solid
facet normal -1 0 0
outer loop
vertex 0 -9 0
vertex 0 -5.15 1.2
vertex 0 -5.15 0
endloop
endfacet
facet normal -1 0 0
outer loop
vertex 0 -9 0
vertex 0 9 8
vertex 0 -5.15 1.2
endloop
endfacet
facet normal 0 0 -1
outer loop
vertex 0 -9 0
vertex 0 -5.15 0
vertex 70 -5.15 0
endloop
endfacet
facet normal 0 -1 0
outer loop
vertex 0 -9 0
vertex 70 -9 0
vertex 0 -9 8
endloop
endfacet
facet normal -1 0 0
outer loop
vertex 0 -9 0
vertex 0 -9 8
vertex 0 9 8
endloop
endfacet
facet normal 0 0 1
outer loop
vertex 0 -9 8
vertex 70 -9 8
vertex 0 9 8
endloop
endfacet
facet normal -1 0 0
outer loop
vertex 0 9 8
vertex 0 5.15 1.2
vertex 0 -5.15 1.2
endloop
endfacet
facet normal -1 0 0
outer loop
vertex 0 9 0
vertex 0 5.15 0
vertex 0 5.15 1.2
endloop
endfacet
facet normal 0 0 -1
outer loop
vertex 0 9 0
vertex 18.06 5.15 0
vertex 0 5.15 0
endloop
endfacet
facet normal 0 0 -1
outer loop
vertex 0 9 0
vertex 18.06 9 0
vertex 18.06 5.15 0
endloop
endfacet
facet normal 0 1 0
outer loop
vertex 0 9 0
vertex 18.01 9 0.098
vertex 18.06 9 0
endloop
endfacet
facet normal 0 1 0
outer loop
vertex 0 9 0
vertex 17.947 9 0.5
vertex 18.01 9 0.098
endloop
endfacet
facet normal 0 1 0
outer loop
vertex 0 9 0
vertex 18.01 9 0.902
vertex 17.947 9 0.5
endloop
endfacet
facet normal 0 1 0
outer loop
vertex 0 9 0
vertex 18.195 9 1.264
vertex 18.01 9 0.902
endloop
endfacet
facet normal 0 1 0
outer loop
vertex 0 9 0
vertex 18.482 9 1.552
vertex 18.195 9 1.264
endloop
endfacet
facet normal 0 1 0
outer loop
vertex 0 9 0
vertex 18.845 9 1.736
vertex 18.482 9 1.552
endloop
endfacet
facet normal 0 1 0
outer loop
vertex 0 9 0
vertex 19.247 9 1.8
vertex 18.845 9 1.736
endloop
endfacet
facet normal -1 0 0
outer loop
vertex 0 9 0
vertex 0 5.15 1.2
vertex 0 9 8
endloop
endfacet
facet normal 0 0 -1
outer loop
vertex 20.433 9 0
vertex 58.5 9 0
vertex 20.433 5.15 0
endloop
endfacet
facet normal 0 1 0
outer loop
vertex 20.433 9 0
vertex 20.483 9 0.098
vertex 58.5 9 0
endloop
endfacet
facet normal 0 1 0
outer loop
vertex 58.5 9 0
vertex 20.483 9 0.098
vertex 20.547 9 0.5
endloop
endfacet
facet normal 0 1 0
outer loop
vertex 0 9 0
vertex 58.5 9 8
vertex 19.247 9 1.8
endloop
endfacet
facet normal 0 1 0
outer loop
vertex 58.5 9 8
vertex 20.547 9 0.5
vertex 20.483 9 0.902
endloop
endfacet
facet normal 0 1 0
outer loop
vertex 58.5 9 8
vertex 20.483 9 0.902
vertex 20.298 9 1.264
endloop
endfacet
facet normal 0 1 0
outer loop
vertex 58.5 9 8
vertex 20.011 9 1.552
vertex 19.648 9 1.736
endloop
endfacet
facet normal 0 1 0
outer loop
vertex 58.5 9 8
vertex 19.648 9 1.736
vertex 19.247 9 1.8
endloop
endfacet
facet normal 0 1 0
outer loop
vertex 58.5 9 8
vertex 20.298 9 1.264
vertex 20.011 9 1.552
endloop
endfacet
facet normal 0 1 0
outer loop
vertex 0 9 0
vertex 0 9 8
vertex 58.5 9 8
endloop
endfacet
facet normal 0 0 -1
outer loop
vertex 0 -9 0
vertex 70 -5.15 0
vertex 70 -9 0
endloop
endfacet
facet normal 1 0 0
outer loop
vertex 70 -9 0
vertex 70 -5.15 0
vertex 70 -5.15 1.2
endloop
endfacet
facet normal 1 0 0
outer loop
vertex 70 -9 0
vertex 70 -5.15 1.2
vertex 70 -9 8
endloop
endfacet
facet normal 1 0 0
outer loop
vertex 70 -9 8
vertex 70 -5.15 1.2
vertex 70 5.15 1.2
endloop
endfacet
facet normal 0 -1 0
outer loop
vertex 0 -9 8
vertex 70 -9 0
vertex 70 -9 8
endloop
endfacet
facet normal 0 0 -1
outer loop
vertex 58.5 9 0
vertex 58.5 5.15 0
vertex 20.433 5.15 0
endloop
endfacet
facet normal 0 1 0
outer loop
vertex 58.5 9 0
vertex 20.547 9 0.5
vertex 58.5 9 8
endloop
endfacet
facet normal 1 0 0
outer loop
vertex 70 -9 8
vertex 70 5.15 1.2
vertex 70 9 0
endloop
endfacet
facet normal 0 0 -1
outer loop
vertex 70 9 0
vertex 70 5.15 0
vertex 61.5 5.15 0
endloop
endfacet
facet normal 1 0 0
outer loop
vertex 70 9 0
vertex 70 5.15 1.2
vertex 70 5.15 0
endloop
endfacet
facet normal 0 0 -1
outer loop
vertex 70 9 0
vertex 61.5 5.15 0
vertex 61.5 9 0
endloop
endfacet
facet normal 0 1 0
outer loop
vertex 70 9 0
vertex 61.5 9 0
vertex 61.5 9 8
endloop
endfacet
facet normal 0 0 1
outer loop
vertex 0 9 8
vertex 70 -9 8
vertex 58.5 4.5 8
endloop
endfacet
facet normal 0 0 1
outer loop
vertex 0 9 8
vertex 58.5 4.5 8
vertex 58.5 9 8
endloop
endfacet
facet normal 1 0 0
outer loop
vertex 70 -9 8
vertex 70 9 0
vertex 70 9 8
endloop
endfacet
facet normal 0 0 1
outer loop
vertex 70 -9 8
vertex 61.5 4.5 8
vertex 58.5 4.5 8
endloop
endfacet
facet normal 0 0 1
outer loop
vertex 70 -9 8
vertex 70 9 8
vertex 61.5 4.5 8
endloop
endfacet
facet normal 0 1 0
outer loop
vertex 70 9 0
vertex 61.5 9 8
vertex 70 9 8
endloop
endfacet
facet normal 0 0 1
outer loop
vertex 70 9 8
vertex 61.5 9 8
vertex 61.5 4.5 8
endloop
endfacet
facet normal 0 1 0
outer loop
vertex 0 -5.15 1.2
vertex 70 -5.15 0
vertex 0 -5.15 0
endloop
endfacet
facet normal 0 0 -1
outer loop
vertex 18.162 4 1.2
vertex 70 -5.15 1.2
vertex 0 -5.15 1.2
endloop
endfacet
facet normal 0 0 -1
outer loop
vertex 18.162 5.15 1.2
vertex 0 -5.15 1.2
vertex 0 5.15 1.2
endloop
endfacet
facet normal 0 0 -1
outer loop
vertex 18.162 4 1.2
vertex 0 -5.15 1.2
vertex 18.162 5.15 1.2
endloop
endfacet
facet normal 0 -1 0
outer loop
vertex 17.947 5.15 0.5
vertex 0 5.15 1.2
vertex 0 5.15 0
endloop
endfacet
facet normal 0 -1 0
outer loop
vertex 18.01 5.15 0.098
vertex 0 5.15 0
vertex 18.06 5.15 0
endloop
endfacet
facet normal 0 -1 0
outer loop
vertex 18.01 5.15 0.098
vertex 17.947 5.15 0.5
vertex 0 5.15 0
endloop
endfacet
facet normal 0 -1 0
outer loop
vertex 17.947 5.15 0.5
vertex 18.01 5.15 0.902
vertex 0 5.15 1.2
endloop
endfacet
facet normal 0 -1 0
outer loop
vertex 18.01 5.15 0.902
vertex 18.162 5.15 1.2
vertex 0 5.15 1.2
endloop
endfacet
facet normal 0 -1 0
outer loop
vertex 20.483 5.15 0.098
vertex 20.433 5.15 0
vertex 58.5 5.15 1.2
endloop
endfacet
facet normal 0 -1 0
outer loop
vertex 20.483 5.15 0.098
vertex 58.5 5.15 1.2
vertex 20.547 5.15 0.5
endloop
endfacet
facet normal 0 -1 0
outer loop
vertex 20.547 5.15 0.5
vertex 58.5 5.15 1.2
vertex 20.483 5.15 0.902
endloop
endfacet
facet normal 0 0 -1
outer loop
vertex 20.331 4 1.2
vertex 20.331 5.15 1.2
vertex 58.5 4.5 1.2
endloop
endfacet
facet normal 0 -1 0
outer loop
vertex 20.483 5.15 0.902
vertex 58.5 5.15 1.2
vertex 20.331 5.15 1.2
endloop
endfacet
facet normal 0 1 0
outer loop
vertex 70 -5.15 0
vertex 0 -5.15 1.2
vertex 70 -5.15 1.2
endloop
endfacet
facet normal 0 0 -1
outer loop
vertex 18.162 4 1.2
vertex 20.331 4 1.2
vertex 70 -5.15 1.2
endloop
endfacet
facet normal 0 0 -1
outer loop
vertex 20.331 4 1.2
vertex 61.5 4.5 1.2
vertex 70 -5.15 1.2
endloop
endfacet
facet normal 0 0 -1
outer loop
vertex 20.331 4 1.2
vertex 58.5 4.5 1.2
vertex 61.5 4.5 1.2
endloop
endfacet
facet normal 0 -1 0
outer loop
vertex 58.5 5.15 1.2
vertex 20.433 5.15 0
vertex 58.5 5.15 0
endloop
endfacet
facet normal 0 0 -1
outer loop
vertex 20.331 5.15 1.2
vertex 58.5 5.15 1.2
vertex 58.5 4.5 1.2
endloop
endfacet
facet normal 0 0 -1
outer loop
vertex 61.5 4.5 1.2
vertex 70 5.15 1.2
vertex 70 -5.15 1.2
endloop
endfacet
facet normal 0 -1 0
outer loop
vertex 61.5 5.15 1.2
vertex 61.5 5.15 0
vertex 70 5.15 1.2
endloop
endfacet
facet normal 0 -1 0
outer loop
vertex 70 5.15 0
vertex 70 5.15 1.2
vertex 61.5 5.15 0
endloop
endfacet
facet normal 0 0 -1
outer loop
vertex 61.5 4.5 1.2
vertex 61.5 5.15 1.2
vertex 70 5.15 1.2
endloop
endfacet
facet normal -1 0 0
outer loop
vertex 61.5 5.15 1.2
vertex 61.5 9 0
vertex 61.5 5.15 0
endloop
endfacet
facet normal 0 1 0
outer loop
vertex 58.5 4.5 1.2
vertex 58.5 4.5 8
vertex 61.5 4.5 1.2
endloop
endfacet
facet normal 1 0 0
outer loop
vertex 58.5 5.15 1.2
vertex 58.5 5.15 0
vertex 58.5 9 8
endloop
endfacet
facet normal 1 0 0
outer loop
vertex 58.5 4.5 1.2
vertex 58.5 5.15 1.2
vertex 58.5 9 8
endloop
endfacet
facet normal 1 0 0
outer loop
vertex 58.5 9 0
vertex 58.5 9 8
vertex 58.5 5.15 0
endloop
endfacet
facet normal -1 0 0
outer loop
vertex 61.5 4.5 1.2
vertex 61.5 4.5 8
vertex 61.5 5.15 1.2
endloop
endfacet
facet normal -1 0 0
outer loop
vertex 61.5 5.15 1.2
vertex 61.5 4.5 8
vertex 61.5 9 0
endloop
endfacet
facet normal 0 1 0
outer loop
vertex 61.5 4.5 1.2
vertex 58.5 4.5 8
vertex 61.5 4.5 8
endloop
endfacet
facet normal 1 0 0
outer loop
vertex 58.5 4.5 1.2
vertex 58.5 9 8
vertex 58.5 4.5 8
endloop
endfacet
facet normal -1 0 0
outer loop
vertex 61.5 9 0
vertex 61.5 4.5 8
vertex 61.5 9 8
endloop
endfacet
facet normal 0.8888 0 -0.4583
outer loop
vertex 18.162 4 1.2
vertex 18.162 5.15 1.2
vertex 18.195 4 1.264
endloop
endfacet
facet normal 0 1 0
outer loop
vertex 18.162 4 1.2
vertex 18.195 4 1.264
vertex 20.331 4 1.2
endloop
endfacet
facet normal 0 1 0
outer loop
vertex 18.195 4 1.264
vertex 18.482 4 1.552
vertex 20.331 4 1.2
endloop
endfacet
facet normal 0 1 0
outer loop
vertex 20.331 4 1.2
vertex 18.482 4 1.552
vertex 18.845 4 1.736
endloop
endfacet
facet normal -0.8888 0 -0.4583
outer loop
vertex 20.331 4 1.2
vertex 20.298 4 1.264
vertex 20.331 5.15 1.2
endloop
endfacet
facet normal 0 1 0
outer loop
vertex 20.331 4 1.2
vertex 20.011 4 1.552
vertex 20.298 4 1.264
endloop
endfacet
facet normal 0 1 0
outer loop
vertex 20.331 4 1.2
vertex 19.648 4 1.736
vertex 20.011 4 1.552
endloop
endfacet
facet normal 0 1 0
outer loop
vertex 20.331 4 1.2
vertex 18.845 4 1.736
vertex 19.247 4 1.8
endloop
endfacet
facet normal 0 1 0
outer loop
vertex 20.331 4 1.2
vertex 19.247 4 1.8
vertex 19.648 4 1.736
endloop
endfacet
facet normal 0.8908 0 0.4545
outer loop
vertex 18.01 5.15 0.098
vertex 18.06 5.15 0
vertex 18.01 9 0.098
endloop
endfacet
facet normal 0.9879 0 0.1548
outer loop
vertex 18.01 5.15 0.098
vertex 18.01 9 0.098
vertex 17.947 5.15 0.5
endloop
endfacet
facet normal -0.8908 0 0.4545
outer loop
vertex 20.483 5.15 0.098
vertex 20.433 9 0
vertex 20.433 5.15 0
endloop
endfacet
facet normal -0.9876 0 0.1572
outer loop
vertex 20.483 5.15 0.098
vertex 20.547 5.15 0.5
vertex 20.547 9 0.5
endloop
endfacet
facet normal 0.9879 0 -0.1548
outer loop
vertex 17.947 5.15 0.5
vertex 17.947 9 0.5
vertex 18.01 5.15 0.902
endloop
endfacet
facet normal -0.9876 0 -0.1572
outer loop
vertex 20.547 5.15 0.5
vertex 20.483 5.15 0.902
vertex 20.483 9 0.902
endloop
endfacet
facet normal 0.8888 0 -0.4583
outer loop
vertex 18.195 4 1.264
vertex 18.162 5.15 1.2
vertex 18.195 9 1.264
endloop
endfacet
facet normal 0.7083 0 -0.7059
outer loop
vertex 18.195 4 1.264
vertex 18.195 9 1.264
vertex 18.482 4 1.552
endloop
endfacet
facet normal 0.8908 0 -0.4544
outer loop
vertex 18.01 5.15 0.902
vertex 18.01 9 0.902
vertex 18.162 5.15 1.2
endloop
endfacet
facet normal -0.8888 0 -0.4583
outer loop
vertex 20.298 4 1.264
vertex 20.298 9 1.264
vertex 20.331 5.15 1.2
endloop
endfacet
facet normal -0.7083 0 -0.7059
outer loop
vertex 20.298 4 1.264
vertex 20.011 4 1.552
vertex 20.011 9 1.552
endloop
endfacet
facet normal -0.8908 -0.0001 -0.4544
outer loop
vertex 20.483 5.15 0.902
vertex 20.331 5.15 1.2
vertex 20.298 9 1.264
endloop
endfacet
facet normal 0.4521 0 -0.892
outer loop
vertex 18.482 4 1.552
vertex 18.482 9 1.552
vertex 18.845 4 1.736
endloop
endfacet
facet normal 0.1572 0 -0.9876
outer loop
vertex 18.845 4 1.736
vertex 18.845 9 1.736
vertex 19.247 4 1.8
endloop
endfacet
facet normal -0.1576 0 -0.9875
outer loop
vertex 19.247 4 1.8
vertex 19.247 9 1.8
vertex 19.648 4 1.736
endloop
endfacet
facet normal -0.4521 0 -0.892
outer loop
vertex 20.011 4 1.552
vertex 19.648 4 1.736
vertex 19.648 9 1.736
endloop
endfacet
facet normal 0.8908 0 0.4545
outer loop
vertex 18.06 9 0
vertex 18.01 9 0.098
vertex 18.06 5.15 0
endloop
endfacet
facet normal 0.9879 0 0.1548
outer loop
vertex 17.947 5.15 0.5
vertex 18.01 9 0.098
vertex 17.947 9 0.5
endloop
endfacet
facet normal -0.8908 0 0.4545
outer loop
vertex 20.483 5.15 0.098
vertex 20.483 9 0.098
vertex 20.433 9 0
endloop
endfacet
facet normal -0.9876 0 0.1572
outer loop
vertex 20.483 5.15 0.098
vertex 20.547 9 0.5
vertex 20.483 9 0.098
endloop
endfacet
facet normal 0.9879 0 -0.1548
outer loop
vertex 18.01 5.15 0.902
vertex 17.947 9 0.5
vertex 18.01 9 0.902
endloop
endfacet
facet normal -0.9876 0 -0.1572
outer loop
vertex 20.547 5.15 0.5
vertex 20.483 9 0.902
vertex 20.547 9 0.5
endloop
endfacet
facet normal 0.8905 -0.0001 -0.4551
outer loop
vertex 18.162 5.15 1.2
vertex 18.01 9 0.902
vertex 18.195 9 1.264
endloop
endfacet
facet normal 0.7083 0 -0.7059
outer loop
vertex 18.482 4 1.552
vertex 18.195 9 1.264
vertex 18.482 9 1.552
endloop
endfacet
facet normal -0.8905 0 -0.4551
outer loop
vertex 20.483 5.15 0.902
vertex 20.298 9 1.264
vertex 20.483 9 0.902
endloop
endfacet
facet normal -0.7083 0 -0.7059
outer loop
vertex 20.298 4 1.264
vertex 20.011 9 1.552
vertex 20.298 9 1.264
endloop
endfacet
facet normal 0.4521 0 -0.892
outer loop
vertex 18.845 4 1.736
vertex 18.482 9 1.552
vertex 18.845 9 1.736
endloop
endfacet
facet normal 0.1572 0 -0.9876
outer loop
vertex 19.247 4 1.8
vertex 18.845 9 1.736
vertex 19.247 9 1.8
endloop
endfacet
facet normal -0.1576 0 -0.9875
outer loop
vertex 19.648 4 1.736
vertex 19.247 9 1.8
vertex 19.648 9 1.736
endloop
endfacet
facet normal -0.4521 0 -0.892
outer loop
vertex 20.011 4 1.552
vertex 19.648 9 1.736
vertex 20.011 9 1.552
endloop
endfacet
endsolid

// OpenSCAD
// H20_notch_jig  (qty 1; frame: local; any (tool); PETG fine)
// GENERATED by gen_halo_stl.py from halo_parts.py. Change numbers in halo_params.scad.
// Every dimension below is an expression of the names in halo_params.scad.
include <../halo_params.scad>

difference() {
    translate([0, -9, 0]) {
        cube([70, 18, 8], center = false);
    }
    translate([-1, -(STRIP_W / 2 + 0.15), -1]) {
        cube([72, STRIP_W / 2 + 0.15 - (-(STRIP_W / 2 + 0.15)), STRIP_T + 0.2 - -1], center = false);
    }
    translate([58.5, STRIP_W / 2 - 0.5, -1]) {
        cube([3, 10 - (STRIP_W / 2 - 0.5), 10], center = false);
    }
    translate([60 - (((R_SI + STRIP_T / 2) * 10) / 57.29578), 4, 0.5]) {
        rotate([-90, 0, 0]) {
            cylinder(h = 8, r = 1.3, center = false, $fn = 20);
        }
    }
}
